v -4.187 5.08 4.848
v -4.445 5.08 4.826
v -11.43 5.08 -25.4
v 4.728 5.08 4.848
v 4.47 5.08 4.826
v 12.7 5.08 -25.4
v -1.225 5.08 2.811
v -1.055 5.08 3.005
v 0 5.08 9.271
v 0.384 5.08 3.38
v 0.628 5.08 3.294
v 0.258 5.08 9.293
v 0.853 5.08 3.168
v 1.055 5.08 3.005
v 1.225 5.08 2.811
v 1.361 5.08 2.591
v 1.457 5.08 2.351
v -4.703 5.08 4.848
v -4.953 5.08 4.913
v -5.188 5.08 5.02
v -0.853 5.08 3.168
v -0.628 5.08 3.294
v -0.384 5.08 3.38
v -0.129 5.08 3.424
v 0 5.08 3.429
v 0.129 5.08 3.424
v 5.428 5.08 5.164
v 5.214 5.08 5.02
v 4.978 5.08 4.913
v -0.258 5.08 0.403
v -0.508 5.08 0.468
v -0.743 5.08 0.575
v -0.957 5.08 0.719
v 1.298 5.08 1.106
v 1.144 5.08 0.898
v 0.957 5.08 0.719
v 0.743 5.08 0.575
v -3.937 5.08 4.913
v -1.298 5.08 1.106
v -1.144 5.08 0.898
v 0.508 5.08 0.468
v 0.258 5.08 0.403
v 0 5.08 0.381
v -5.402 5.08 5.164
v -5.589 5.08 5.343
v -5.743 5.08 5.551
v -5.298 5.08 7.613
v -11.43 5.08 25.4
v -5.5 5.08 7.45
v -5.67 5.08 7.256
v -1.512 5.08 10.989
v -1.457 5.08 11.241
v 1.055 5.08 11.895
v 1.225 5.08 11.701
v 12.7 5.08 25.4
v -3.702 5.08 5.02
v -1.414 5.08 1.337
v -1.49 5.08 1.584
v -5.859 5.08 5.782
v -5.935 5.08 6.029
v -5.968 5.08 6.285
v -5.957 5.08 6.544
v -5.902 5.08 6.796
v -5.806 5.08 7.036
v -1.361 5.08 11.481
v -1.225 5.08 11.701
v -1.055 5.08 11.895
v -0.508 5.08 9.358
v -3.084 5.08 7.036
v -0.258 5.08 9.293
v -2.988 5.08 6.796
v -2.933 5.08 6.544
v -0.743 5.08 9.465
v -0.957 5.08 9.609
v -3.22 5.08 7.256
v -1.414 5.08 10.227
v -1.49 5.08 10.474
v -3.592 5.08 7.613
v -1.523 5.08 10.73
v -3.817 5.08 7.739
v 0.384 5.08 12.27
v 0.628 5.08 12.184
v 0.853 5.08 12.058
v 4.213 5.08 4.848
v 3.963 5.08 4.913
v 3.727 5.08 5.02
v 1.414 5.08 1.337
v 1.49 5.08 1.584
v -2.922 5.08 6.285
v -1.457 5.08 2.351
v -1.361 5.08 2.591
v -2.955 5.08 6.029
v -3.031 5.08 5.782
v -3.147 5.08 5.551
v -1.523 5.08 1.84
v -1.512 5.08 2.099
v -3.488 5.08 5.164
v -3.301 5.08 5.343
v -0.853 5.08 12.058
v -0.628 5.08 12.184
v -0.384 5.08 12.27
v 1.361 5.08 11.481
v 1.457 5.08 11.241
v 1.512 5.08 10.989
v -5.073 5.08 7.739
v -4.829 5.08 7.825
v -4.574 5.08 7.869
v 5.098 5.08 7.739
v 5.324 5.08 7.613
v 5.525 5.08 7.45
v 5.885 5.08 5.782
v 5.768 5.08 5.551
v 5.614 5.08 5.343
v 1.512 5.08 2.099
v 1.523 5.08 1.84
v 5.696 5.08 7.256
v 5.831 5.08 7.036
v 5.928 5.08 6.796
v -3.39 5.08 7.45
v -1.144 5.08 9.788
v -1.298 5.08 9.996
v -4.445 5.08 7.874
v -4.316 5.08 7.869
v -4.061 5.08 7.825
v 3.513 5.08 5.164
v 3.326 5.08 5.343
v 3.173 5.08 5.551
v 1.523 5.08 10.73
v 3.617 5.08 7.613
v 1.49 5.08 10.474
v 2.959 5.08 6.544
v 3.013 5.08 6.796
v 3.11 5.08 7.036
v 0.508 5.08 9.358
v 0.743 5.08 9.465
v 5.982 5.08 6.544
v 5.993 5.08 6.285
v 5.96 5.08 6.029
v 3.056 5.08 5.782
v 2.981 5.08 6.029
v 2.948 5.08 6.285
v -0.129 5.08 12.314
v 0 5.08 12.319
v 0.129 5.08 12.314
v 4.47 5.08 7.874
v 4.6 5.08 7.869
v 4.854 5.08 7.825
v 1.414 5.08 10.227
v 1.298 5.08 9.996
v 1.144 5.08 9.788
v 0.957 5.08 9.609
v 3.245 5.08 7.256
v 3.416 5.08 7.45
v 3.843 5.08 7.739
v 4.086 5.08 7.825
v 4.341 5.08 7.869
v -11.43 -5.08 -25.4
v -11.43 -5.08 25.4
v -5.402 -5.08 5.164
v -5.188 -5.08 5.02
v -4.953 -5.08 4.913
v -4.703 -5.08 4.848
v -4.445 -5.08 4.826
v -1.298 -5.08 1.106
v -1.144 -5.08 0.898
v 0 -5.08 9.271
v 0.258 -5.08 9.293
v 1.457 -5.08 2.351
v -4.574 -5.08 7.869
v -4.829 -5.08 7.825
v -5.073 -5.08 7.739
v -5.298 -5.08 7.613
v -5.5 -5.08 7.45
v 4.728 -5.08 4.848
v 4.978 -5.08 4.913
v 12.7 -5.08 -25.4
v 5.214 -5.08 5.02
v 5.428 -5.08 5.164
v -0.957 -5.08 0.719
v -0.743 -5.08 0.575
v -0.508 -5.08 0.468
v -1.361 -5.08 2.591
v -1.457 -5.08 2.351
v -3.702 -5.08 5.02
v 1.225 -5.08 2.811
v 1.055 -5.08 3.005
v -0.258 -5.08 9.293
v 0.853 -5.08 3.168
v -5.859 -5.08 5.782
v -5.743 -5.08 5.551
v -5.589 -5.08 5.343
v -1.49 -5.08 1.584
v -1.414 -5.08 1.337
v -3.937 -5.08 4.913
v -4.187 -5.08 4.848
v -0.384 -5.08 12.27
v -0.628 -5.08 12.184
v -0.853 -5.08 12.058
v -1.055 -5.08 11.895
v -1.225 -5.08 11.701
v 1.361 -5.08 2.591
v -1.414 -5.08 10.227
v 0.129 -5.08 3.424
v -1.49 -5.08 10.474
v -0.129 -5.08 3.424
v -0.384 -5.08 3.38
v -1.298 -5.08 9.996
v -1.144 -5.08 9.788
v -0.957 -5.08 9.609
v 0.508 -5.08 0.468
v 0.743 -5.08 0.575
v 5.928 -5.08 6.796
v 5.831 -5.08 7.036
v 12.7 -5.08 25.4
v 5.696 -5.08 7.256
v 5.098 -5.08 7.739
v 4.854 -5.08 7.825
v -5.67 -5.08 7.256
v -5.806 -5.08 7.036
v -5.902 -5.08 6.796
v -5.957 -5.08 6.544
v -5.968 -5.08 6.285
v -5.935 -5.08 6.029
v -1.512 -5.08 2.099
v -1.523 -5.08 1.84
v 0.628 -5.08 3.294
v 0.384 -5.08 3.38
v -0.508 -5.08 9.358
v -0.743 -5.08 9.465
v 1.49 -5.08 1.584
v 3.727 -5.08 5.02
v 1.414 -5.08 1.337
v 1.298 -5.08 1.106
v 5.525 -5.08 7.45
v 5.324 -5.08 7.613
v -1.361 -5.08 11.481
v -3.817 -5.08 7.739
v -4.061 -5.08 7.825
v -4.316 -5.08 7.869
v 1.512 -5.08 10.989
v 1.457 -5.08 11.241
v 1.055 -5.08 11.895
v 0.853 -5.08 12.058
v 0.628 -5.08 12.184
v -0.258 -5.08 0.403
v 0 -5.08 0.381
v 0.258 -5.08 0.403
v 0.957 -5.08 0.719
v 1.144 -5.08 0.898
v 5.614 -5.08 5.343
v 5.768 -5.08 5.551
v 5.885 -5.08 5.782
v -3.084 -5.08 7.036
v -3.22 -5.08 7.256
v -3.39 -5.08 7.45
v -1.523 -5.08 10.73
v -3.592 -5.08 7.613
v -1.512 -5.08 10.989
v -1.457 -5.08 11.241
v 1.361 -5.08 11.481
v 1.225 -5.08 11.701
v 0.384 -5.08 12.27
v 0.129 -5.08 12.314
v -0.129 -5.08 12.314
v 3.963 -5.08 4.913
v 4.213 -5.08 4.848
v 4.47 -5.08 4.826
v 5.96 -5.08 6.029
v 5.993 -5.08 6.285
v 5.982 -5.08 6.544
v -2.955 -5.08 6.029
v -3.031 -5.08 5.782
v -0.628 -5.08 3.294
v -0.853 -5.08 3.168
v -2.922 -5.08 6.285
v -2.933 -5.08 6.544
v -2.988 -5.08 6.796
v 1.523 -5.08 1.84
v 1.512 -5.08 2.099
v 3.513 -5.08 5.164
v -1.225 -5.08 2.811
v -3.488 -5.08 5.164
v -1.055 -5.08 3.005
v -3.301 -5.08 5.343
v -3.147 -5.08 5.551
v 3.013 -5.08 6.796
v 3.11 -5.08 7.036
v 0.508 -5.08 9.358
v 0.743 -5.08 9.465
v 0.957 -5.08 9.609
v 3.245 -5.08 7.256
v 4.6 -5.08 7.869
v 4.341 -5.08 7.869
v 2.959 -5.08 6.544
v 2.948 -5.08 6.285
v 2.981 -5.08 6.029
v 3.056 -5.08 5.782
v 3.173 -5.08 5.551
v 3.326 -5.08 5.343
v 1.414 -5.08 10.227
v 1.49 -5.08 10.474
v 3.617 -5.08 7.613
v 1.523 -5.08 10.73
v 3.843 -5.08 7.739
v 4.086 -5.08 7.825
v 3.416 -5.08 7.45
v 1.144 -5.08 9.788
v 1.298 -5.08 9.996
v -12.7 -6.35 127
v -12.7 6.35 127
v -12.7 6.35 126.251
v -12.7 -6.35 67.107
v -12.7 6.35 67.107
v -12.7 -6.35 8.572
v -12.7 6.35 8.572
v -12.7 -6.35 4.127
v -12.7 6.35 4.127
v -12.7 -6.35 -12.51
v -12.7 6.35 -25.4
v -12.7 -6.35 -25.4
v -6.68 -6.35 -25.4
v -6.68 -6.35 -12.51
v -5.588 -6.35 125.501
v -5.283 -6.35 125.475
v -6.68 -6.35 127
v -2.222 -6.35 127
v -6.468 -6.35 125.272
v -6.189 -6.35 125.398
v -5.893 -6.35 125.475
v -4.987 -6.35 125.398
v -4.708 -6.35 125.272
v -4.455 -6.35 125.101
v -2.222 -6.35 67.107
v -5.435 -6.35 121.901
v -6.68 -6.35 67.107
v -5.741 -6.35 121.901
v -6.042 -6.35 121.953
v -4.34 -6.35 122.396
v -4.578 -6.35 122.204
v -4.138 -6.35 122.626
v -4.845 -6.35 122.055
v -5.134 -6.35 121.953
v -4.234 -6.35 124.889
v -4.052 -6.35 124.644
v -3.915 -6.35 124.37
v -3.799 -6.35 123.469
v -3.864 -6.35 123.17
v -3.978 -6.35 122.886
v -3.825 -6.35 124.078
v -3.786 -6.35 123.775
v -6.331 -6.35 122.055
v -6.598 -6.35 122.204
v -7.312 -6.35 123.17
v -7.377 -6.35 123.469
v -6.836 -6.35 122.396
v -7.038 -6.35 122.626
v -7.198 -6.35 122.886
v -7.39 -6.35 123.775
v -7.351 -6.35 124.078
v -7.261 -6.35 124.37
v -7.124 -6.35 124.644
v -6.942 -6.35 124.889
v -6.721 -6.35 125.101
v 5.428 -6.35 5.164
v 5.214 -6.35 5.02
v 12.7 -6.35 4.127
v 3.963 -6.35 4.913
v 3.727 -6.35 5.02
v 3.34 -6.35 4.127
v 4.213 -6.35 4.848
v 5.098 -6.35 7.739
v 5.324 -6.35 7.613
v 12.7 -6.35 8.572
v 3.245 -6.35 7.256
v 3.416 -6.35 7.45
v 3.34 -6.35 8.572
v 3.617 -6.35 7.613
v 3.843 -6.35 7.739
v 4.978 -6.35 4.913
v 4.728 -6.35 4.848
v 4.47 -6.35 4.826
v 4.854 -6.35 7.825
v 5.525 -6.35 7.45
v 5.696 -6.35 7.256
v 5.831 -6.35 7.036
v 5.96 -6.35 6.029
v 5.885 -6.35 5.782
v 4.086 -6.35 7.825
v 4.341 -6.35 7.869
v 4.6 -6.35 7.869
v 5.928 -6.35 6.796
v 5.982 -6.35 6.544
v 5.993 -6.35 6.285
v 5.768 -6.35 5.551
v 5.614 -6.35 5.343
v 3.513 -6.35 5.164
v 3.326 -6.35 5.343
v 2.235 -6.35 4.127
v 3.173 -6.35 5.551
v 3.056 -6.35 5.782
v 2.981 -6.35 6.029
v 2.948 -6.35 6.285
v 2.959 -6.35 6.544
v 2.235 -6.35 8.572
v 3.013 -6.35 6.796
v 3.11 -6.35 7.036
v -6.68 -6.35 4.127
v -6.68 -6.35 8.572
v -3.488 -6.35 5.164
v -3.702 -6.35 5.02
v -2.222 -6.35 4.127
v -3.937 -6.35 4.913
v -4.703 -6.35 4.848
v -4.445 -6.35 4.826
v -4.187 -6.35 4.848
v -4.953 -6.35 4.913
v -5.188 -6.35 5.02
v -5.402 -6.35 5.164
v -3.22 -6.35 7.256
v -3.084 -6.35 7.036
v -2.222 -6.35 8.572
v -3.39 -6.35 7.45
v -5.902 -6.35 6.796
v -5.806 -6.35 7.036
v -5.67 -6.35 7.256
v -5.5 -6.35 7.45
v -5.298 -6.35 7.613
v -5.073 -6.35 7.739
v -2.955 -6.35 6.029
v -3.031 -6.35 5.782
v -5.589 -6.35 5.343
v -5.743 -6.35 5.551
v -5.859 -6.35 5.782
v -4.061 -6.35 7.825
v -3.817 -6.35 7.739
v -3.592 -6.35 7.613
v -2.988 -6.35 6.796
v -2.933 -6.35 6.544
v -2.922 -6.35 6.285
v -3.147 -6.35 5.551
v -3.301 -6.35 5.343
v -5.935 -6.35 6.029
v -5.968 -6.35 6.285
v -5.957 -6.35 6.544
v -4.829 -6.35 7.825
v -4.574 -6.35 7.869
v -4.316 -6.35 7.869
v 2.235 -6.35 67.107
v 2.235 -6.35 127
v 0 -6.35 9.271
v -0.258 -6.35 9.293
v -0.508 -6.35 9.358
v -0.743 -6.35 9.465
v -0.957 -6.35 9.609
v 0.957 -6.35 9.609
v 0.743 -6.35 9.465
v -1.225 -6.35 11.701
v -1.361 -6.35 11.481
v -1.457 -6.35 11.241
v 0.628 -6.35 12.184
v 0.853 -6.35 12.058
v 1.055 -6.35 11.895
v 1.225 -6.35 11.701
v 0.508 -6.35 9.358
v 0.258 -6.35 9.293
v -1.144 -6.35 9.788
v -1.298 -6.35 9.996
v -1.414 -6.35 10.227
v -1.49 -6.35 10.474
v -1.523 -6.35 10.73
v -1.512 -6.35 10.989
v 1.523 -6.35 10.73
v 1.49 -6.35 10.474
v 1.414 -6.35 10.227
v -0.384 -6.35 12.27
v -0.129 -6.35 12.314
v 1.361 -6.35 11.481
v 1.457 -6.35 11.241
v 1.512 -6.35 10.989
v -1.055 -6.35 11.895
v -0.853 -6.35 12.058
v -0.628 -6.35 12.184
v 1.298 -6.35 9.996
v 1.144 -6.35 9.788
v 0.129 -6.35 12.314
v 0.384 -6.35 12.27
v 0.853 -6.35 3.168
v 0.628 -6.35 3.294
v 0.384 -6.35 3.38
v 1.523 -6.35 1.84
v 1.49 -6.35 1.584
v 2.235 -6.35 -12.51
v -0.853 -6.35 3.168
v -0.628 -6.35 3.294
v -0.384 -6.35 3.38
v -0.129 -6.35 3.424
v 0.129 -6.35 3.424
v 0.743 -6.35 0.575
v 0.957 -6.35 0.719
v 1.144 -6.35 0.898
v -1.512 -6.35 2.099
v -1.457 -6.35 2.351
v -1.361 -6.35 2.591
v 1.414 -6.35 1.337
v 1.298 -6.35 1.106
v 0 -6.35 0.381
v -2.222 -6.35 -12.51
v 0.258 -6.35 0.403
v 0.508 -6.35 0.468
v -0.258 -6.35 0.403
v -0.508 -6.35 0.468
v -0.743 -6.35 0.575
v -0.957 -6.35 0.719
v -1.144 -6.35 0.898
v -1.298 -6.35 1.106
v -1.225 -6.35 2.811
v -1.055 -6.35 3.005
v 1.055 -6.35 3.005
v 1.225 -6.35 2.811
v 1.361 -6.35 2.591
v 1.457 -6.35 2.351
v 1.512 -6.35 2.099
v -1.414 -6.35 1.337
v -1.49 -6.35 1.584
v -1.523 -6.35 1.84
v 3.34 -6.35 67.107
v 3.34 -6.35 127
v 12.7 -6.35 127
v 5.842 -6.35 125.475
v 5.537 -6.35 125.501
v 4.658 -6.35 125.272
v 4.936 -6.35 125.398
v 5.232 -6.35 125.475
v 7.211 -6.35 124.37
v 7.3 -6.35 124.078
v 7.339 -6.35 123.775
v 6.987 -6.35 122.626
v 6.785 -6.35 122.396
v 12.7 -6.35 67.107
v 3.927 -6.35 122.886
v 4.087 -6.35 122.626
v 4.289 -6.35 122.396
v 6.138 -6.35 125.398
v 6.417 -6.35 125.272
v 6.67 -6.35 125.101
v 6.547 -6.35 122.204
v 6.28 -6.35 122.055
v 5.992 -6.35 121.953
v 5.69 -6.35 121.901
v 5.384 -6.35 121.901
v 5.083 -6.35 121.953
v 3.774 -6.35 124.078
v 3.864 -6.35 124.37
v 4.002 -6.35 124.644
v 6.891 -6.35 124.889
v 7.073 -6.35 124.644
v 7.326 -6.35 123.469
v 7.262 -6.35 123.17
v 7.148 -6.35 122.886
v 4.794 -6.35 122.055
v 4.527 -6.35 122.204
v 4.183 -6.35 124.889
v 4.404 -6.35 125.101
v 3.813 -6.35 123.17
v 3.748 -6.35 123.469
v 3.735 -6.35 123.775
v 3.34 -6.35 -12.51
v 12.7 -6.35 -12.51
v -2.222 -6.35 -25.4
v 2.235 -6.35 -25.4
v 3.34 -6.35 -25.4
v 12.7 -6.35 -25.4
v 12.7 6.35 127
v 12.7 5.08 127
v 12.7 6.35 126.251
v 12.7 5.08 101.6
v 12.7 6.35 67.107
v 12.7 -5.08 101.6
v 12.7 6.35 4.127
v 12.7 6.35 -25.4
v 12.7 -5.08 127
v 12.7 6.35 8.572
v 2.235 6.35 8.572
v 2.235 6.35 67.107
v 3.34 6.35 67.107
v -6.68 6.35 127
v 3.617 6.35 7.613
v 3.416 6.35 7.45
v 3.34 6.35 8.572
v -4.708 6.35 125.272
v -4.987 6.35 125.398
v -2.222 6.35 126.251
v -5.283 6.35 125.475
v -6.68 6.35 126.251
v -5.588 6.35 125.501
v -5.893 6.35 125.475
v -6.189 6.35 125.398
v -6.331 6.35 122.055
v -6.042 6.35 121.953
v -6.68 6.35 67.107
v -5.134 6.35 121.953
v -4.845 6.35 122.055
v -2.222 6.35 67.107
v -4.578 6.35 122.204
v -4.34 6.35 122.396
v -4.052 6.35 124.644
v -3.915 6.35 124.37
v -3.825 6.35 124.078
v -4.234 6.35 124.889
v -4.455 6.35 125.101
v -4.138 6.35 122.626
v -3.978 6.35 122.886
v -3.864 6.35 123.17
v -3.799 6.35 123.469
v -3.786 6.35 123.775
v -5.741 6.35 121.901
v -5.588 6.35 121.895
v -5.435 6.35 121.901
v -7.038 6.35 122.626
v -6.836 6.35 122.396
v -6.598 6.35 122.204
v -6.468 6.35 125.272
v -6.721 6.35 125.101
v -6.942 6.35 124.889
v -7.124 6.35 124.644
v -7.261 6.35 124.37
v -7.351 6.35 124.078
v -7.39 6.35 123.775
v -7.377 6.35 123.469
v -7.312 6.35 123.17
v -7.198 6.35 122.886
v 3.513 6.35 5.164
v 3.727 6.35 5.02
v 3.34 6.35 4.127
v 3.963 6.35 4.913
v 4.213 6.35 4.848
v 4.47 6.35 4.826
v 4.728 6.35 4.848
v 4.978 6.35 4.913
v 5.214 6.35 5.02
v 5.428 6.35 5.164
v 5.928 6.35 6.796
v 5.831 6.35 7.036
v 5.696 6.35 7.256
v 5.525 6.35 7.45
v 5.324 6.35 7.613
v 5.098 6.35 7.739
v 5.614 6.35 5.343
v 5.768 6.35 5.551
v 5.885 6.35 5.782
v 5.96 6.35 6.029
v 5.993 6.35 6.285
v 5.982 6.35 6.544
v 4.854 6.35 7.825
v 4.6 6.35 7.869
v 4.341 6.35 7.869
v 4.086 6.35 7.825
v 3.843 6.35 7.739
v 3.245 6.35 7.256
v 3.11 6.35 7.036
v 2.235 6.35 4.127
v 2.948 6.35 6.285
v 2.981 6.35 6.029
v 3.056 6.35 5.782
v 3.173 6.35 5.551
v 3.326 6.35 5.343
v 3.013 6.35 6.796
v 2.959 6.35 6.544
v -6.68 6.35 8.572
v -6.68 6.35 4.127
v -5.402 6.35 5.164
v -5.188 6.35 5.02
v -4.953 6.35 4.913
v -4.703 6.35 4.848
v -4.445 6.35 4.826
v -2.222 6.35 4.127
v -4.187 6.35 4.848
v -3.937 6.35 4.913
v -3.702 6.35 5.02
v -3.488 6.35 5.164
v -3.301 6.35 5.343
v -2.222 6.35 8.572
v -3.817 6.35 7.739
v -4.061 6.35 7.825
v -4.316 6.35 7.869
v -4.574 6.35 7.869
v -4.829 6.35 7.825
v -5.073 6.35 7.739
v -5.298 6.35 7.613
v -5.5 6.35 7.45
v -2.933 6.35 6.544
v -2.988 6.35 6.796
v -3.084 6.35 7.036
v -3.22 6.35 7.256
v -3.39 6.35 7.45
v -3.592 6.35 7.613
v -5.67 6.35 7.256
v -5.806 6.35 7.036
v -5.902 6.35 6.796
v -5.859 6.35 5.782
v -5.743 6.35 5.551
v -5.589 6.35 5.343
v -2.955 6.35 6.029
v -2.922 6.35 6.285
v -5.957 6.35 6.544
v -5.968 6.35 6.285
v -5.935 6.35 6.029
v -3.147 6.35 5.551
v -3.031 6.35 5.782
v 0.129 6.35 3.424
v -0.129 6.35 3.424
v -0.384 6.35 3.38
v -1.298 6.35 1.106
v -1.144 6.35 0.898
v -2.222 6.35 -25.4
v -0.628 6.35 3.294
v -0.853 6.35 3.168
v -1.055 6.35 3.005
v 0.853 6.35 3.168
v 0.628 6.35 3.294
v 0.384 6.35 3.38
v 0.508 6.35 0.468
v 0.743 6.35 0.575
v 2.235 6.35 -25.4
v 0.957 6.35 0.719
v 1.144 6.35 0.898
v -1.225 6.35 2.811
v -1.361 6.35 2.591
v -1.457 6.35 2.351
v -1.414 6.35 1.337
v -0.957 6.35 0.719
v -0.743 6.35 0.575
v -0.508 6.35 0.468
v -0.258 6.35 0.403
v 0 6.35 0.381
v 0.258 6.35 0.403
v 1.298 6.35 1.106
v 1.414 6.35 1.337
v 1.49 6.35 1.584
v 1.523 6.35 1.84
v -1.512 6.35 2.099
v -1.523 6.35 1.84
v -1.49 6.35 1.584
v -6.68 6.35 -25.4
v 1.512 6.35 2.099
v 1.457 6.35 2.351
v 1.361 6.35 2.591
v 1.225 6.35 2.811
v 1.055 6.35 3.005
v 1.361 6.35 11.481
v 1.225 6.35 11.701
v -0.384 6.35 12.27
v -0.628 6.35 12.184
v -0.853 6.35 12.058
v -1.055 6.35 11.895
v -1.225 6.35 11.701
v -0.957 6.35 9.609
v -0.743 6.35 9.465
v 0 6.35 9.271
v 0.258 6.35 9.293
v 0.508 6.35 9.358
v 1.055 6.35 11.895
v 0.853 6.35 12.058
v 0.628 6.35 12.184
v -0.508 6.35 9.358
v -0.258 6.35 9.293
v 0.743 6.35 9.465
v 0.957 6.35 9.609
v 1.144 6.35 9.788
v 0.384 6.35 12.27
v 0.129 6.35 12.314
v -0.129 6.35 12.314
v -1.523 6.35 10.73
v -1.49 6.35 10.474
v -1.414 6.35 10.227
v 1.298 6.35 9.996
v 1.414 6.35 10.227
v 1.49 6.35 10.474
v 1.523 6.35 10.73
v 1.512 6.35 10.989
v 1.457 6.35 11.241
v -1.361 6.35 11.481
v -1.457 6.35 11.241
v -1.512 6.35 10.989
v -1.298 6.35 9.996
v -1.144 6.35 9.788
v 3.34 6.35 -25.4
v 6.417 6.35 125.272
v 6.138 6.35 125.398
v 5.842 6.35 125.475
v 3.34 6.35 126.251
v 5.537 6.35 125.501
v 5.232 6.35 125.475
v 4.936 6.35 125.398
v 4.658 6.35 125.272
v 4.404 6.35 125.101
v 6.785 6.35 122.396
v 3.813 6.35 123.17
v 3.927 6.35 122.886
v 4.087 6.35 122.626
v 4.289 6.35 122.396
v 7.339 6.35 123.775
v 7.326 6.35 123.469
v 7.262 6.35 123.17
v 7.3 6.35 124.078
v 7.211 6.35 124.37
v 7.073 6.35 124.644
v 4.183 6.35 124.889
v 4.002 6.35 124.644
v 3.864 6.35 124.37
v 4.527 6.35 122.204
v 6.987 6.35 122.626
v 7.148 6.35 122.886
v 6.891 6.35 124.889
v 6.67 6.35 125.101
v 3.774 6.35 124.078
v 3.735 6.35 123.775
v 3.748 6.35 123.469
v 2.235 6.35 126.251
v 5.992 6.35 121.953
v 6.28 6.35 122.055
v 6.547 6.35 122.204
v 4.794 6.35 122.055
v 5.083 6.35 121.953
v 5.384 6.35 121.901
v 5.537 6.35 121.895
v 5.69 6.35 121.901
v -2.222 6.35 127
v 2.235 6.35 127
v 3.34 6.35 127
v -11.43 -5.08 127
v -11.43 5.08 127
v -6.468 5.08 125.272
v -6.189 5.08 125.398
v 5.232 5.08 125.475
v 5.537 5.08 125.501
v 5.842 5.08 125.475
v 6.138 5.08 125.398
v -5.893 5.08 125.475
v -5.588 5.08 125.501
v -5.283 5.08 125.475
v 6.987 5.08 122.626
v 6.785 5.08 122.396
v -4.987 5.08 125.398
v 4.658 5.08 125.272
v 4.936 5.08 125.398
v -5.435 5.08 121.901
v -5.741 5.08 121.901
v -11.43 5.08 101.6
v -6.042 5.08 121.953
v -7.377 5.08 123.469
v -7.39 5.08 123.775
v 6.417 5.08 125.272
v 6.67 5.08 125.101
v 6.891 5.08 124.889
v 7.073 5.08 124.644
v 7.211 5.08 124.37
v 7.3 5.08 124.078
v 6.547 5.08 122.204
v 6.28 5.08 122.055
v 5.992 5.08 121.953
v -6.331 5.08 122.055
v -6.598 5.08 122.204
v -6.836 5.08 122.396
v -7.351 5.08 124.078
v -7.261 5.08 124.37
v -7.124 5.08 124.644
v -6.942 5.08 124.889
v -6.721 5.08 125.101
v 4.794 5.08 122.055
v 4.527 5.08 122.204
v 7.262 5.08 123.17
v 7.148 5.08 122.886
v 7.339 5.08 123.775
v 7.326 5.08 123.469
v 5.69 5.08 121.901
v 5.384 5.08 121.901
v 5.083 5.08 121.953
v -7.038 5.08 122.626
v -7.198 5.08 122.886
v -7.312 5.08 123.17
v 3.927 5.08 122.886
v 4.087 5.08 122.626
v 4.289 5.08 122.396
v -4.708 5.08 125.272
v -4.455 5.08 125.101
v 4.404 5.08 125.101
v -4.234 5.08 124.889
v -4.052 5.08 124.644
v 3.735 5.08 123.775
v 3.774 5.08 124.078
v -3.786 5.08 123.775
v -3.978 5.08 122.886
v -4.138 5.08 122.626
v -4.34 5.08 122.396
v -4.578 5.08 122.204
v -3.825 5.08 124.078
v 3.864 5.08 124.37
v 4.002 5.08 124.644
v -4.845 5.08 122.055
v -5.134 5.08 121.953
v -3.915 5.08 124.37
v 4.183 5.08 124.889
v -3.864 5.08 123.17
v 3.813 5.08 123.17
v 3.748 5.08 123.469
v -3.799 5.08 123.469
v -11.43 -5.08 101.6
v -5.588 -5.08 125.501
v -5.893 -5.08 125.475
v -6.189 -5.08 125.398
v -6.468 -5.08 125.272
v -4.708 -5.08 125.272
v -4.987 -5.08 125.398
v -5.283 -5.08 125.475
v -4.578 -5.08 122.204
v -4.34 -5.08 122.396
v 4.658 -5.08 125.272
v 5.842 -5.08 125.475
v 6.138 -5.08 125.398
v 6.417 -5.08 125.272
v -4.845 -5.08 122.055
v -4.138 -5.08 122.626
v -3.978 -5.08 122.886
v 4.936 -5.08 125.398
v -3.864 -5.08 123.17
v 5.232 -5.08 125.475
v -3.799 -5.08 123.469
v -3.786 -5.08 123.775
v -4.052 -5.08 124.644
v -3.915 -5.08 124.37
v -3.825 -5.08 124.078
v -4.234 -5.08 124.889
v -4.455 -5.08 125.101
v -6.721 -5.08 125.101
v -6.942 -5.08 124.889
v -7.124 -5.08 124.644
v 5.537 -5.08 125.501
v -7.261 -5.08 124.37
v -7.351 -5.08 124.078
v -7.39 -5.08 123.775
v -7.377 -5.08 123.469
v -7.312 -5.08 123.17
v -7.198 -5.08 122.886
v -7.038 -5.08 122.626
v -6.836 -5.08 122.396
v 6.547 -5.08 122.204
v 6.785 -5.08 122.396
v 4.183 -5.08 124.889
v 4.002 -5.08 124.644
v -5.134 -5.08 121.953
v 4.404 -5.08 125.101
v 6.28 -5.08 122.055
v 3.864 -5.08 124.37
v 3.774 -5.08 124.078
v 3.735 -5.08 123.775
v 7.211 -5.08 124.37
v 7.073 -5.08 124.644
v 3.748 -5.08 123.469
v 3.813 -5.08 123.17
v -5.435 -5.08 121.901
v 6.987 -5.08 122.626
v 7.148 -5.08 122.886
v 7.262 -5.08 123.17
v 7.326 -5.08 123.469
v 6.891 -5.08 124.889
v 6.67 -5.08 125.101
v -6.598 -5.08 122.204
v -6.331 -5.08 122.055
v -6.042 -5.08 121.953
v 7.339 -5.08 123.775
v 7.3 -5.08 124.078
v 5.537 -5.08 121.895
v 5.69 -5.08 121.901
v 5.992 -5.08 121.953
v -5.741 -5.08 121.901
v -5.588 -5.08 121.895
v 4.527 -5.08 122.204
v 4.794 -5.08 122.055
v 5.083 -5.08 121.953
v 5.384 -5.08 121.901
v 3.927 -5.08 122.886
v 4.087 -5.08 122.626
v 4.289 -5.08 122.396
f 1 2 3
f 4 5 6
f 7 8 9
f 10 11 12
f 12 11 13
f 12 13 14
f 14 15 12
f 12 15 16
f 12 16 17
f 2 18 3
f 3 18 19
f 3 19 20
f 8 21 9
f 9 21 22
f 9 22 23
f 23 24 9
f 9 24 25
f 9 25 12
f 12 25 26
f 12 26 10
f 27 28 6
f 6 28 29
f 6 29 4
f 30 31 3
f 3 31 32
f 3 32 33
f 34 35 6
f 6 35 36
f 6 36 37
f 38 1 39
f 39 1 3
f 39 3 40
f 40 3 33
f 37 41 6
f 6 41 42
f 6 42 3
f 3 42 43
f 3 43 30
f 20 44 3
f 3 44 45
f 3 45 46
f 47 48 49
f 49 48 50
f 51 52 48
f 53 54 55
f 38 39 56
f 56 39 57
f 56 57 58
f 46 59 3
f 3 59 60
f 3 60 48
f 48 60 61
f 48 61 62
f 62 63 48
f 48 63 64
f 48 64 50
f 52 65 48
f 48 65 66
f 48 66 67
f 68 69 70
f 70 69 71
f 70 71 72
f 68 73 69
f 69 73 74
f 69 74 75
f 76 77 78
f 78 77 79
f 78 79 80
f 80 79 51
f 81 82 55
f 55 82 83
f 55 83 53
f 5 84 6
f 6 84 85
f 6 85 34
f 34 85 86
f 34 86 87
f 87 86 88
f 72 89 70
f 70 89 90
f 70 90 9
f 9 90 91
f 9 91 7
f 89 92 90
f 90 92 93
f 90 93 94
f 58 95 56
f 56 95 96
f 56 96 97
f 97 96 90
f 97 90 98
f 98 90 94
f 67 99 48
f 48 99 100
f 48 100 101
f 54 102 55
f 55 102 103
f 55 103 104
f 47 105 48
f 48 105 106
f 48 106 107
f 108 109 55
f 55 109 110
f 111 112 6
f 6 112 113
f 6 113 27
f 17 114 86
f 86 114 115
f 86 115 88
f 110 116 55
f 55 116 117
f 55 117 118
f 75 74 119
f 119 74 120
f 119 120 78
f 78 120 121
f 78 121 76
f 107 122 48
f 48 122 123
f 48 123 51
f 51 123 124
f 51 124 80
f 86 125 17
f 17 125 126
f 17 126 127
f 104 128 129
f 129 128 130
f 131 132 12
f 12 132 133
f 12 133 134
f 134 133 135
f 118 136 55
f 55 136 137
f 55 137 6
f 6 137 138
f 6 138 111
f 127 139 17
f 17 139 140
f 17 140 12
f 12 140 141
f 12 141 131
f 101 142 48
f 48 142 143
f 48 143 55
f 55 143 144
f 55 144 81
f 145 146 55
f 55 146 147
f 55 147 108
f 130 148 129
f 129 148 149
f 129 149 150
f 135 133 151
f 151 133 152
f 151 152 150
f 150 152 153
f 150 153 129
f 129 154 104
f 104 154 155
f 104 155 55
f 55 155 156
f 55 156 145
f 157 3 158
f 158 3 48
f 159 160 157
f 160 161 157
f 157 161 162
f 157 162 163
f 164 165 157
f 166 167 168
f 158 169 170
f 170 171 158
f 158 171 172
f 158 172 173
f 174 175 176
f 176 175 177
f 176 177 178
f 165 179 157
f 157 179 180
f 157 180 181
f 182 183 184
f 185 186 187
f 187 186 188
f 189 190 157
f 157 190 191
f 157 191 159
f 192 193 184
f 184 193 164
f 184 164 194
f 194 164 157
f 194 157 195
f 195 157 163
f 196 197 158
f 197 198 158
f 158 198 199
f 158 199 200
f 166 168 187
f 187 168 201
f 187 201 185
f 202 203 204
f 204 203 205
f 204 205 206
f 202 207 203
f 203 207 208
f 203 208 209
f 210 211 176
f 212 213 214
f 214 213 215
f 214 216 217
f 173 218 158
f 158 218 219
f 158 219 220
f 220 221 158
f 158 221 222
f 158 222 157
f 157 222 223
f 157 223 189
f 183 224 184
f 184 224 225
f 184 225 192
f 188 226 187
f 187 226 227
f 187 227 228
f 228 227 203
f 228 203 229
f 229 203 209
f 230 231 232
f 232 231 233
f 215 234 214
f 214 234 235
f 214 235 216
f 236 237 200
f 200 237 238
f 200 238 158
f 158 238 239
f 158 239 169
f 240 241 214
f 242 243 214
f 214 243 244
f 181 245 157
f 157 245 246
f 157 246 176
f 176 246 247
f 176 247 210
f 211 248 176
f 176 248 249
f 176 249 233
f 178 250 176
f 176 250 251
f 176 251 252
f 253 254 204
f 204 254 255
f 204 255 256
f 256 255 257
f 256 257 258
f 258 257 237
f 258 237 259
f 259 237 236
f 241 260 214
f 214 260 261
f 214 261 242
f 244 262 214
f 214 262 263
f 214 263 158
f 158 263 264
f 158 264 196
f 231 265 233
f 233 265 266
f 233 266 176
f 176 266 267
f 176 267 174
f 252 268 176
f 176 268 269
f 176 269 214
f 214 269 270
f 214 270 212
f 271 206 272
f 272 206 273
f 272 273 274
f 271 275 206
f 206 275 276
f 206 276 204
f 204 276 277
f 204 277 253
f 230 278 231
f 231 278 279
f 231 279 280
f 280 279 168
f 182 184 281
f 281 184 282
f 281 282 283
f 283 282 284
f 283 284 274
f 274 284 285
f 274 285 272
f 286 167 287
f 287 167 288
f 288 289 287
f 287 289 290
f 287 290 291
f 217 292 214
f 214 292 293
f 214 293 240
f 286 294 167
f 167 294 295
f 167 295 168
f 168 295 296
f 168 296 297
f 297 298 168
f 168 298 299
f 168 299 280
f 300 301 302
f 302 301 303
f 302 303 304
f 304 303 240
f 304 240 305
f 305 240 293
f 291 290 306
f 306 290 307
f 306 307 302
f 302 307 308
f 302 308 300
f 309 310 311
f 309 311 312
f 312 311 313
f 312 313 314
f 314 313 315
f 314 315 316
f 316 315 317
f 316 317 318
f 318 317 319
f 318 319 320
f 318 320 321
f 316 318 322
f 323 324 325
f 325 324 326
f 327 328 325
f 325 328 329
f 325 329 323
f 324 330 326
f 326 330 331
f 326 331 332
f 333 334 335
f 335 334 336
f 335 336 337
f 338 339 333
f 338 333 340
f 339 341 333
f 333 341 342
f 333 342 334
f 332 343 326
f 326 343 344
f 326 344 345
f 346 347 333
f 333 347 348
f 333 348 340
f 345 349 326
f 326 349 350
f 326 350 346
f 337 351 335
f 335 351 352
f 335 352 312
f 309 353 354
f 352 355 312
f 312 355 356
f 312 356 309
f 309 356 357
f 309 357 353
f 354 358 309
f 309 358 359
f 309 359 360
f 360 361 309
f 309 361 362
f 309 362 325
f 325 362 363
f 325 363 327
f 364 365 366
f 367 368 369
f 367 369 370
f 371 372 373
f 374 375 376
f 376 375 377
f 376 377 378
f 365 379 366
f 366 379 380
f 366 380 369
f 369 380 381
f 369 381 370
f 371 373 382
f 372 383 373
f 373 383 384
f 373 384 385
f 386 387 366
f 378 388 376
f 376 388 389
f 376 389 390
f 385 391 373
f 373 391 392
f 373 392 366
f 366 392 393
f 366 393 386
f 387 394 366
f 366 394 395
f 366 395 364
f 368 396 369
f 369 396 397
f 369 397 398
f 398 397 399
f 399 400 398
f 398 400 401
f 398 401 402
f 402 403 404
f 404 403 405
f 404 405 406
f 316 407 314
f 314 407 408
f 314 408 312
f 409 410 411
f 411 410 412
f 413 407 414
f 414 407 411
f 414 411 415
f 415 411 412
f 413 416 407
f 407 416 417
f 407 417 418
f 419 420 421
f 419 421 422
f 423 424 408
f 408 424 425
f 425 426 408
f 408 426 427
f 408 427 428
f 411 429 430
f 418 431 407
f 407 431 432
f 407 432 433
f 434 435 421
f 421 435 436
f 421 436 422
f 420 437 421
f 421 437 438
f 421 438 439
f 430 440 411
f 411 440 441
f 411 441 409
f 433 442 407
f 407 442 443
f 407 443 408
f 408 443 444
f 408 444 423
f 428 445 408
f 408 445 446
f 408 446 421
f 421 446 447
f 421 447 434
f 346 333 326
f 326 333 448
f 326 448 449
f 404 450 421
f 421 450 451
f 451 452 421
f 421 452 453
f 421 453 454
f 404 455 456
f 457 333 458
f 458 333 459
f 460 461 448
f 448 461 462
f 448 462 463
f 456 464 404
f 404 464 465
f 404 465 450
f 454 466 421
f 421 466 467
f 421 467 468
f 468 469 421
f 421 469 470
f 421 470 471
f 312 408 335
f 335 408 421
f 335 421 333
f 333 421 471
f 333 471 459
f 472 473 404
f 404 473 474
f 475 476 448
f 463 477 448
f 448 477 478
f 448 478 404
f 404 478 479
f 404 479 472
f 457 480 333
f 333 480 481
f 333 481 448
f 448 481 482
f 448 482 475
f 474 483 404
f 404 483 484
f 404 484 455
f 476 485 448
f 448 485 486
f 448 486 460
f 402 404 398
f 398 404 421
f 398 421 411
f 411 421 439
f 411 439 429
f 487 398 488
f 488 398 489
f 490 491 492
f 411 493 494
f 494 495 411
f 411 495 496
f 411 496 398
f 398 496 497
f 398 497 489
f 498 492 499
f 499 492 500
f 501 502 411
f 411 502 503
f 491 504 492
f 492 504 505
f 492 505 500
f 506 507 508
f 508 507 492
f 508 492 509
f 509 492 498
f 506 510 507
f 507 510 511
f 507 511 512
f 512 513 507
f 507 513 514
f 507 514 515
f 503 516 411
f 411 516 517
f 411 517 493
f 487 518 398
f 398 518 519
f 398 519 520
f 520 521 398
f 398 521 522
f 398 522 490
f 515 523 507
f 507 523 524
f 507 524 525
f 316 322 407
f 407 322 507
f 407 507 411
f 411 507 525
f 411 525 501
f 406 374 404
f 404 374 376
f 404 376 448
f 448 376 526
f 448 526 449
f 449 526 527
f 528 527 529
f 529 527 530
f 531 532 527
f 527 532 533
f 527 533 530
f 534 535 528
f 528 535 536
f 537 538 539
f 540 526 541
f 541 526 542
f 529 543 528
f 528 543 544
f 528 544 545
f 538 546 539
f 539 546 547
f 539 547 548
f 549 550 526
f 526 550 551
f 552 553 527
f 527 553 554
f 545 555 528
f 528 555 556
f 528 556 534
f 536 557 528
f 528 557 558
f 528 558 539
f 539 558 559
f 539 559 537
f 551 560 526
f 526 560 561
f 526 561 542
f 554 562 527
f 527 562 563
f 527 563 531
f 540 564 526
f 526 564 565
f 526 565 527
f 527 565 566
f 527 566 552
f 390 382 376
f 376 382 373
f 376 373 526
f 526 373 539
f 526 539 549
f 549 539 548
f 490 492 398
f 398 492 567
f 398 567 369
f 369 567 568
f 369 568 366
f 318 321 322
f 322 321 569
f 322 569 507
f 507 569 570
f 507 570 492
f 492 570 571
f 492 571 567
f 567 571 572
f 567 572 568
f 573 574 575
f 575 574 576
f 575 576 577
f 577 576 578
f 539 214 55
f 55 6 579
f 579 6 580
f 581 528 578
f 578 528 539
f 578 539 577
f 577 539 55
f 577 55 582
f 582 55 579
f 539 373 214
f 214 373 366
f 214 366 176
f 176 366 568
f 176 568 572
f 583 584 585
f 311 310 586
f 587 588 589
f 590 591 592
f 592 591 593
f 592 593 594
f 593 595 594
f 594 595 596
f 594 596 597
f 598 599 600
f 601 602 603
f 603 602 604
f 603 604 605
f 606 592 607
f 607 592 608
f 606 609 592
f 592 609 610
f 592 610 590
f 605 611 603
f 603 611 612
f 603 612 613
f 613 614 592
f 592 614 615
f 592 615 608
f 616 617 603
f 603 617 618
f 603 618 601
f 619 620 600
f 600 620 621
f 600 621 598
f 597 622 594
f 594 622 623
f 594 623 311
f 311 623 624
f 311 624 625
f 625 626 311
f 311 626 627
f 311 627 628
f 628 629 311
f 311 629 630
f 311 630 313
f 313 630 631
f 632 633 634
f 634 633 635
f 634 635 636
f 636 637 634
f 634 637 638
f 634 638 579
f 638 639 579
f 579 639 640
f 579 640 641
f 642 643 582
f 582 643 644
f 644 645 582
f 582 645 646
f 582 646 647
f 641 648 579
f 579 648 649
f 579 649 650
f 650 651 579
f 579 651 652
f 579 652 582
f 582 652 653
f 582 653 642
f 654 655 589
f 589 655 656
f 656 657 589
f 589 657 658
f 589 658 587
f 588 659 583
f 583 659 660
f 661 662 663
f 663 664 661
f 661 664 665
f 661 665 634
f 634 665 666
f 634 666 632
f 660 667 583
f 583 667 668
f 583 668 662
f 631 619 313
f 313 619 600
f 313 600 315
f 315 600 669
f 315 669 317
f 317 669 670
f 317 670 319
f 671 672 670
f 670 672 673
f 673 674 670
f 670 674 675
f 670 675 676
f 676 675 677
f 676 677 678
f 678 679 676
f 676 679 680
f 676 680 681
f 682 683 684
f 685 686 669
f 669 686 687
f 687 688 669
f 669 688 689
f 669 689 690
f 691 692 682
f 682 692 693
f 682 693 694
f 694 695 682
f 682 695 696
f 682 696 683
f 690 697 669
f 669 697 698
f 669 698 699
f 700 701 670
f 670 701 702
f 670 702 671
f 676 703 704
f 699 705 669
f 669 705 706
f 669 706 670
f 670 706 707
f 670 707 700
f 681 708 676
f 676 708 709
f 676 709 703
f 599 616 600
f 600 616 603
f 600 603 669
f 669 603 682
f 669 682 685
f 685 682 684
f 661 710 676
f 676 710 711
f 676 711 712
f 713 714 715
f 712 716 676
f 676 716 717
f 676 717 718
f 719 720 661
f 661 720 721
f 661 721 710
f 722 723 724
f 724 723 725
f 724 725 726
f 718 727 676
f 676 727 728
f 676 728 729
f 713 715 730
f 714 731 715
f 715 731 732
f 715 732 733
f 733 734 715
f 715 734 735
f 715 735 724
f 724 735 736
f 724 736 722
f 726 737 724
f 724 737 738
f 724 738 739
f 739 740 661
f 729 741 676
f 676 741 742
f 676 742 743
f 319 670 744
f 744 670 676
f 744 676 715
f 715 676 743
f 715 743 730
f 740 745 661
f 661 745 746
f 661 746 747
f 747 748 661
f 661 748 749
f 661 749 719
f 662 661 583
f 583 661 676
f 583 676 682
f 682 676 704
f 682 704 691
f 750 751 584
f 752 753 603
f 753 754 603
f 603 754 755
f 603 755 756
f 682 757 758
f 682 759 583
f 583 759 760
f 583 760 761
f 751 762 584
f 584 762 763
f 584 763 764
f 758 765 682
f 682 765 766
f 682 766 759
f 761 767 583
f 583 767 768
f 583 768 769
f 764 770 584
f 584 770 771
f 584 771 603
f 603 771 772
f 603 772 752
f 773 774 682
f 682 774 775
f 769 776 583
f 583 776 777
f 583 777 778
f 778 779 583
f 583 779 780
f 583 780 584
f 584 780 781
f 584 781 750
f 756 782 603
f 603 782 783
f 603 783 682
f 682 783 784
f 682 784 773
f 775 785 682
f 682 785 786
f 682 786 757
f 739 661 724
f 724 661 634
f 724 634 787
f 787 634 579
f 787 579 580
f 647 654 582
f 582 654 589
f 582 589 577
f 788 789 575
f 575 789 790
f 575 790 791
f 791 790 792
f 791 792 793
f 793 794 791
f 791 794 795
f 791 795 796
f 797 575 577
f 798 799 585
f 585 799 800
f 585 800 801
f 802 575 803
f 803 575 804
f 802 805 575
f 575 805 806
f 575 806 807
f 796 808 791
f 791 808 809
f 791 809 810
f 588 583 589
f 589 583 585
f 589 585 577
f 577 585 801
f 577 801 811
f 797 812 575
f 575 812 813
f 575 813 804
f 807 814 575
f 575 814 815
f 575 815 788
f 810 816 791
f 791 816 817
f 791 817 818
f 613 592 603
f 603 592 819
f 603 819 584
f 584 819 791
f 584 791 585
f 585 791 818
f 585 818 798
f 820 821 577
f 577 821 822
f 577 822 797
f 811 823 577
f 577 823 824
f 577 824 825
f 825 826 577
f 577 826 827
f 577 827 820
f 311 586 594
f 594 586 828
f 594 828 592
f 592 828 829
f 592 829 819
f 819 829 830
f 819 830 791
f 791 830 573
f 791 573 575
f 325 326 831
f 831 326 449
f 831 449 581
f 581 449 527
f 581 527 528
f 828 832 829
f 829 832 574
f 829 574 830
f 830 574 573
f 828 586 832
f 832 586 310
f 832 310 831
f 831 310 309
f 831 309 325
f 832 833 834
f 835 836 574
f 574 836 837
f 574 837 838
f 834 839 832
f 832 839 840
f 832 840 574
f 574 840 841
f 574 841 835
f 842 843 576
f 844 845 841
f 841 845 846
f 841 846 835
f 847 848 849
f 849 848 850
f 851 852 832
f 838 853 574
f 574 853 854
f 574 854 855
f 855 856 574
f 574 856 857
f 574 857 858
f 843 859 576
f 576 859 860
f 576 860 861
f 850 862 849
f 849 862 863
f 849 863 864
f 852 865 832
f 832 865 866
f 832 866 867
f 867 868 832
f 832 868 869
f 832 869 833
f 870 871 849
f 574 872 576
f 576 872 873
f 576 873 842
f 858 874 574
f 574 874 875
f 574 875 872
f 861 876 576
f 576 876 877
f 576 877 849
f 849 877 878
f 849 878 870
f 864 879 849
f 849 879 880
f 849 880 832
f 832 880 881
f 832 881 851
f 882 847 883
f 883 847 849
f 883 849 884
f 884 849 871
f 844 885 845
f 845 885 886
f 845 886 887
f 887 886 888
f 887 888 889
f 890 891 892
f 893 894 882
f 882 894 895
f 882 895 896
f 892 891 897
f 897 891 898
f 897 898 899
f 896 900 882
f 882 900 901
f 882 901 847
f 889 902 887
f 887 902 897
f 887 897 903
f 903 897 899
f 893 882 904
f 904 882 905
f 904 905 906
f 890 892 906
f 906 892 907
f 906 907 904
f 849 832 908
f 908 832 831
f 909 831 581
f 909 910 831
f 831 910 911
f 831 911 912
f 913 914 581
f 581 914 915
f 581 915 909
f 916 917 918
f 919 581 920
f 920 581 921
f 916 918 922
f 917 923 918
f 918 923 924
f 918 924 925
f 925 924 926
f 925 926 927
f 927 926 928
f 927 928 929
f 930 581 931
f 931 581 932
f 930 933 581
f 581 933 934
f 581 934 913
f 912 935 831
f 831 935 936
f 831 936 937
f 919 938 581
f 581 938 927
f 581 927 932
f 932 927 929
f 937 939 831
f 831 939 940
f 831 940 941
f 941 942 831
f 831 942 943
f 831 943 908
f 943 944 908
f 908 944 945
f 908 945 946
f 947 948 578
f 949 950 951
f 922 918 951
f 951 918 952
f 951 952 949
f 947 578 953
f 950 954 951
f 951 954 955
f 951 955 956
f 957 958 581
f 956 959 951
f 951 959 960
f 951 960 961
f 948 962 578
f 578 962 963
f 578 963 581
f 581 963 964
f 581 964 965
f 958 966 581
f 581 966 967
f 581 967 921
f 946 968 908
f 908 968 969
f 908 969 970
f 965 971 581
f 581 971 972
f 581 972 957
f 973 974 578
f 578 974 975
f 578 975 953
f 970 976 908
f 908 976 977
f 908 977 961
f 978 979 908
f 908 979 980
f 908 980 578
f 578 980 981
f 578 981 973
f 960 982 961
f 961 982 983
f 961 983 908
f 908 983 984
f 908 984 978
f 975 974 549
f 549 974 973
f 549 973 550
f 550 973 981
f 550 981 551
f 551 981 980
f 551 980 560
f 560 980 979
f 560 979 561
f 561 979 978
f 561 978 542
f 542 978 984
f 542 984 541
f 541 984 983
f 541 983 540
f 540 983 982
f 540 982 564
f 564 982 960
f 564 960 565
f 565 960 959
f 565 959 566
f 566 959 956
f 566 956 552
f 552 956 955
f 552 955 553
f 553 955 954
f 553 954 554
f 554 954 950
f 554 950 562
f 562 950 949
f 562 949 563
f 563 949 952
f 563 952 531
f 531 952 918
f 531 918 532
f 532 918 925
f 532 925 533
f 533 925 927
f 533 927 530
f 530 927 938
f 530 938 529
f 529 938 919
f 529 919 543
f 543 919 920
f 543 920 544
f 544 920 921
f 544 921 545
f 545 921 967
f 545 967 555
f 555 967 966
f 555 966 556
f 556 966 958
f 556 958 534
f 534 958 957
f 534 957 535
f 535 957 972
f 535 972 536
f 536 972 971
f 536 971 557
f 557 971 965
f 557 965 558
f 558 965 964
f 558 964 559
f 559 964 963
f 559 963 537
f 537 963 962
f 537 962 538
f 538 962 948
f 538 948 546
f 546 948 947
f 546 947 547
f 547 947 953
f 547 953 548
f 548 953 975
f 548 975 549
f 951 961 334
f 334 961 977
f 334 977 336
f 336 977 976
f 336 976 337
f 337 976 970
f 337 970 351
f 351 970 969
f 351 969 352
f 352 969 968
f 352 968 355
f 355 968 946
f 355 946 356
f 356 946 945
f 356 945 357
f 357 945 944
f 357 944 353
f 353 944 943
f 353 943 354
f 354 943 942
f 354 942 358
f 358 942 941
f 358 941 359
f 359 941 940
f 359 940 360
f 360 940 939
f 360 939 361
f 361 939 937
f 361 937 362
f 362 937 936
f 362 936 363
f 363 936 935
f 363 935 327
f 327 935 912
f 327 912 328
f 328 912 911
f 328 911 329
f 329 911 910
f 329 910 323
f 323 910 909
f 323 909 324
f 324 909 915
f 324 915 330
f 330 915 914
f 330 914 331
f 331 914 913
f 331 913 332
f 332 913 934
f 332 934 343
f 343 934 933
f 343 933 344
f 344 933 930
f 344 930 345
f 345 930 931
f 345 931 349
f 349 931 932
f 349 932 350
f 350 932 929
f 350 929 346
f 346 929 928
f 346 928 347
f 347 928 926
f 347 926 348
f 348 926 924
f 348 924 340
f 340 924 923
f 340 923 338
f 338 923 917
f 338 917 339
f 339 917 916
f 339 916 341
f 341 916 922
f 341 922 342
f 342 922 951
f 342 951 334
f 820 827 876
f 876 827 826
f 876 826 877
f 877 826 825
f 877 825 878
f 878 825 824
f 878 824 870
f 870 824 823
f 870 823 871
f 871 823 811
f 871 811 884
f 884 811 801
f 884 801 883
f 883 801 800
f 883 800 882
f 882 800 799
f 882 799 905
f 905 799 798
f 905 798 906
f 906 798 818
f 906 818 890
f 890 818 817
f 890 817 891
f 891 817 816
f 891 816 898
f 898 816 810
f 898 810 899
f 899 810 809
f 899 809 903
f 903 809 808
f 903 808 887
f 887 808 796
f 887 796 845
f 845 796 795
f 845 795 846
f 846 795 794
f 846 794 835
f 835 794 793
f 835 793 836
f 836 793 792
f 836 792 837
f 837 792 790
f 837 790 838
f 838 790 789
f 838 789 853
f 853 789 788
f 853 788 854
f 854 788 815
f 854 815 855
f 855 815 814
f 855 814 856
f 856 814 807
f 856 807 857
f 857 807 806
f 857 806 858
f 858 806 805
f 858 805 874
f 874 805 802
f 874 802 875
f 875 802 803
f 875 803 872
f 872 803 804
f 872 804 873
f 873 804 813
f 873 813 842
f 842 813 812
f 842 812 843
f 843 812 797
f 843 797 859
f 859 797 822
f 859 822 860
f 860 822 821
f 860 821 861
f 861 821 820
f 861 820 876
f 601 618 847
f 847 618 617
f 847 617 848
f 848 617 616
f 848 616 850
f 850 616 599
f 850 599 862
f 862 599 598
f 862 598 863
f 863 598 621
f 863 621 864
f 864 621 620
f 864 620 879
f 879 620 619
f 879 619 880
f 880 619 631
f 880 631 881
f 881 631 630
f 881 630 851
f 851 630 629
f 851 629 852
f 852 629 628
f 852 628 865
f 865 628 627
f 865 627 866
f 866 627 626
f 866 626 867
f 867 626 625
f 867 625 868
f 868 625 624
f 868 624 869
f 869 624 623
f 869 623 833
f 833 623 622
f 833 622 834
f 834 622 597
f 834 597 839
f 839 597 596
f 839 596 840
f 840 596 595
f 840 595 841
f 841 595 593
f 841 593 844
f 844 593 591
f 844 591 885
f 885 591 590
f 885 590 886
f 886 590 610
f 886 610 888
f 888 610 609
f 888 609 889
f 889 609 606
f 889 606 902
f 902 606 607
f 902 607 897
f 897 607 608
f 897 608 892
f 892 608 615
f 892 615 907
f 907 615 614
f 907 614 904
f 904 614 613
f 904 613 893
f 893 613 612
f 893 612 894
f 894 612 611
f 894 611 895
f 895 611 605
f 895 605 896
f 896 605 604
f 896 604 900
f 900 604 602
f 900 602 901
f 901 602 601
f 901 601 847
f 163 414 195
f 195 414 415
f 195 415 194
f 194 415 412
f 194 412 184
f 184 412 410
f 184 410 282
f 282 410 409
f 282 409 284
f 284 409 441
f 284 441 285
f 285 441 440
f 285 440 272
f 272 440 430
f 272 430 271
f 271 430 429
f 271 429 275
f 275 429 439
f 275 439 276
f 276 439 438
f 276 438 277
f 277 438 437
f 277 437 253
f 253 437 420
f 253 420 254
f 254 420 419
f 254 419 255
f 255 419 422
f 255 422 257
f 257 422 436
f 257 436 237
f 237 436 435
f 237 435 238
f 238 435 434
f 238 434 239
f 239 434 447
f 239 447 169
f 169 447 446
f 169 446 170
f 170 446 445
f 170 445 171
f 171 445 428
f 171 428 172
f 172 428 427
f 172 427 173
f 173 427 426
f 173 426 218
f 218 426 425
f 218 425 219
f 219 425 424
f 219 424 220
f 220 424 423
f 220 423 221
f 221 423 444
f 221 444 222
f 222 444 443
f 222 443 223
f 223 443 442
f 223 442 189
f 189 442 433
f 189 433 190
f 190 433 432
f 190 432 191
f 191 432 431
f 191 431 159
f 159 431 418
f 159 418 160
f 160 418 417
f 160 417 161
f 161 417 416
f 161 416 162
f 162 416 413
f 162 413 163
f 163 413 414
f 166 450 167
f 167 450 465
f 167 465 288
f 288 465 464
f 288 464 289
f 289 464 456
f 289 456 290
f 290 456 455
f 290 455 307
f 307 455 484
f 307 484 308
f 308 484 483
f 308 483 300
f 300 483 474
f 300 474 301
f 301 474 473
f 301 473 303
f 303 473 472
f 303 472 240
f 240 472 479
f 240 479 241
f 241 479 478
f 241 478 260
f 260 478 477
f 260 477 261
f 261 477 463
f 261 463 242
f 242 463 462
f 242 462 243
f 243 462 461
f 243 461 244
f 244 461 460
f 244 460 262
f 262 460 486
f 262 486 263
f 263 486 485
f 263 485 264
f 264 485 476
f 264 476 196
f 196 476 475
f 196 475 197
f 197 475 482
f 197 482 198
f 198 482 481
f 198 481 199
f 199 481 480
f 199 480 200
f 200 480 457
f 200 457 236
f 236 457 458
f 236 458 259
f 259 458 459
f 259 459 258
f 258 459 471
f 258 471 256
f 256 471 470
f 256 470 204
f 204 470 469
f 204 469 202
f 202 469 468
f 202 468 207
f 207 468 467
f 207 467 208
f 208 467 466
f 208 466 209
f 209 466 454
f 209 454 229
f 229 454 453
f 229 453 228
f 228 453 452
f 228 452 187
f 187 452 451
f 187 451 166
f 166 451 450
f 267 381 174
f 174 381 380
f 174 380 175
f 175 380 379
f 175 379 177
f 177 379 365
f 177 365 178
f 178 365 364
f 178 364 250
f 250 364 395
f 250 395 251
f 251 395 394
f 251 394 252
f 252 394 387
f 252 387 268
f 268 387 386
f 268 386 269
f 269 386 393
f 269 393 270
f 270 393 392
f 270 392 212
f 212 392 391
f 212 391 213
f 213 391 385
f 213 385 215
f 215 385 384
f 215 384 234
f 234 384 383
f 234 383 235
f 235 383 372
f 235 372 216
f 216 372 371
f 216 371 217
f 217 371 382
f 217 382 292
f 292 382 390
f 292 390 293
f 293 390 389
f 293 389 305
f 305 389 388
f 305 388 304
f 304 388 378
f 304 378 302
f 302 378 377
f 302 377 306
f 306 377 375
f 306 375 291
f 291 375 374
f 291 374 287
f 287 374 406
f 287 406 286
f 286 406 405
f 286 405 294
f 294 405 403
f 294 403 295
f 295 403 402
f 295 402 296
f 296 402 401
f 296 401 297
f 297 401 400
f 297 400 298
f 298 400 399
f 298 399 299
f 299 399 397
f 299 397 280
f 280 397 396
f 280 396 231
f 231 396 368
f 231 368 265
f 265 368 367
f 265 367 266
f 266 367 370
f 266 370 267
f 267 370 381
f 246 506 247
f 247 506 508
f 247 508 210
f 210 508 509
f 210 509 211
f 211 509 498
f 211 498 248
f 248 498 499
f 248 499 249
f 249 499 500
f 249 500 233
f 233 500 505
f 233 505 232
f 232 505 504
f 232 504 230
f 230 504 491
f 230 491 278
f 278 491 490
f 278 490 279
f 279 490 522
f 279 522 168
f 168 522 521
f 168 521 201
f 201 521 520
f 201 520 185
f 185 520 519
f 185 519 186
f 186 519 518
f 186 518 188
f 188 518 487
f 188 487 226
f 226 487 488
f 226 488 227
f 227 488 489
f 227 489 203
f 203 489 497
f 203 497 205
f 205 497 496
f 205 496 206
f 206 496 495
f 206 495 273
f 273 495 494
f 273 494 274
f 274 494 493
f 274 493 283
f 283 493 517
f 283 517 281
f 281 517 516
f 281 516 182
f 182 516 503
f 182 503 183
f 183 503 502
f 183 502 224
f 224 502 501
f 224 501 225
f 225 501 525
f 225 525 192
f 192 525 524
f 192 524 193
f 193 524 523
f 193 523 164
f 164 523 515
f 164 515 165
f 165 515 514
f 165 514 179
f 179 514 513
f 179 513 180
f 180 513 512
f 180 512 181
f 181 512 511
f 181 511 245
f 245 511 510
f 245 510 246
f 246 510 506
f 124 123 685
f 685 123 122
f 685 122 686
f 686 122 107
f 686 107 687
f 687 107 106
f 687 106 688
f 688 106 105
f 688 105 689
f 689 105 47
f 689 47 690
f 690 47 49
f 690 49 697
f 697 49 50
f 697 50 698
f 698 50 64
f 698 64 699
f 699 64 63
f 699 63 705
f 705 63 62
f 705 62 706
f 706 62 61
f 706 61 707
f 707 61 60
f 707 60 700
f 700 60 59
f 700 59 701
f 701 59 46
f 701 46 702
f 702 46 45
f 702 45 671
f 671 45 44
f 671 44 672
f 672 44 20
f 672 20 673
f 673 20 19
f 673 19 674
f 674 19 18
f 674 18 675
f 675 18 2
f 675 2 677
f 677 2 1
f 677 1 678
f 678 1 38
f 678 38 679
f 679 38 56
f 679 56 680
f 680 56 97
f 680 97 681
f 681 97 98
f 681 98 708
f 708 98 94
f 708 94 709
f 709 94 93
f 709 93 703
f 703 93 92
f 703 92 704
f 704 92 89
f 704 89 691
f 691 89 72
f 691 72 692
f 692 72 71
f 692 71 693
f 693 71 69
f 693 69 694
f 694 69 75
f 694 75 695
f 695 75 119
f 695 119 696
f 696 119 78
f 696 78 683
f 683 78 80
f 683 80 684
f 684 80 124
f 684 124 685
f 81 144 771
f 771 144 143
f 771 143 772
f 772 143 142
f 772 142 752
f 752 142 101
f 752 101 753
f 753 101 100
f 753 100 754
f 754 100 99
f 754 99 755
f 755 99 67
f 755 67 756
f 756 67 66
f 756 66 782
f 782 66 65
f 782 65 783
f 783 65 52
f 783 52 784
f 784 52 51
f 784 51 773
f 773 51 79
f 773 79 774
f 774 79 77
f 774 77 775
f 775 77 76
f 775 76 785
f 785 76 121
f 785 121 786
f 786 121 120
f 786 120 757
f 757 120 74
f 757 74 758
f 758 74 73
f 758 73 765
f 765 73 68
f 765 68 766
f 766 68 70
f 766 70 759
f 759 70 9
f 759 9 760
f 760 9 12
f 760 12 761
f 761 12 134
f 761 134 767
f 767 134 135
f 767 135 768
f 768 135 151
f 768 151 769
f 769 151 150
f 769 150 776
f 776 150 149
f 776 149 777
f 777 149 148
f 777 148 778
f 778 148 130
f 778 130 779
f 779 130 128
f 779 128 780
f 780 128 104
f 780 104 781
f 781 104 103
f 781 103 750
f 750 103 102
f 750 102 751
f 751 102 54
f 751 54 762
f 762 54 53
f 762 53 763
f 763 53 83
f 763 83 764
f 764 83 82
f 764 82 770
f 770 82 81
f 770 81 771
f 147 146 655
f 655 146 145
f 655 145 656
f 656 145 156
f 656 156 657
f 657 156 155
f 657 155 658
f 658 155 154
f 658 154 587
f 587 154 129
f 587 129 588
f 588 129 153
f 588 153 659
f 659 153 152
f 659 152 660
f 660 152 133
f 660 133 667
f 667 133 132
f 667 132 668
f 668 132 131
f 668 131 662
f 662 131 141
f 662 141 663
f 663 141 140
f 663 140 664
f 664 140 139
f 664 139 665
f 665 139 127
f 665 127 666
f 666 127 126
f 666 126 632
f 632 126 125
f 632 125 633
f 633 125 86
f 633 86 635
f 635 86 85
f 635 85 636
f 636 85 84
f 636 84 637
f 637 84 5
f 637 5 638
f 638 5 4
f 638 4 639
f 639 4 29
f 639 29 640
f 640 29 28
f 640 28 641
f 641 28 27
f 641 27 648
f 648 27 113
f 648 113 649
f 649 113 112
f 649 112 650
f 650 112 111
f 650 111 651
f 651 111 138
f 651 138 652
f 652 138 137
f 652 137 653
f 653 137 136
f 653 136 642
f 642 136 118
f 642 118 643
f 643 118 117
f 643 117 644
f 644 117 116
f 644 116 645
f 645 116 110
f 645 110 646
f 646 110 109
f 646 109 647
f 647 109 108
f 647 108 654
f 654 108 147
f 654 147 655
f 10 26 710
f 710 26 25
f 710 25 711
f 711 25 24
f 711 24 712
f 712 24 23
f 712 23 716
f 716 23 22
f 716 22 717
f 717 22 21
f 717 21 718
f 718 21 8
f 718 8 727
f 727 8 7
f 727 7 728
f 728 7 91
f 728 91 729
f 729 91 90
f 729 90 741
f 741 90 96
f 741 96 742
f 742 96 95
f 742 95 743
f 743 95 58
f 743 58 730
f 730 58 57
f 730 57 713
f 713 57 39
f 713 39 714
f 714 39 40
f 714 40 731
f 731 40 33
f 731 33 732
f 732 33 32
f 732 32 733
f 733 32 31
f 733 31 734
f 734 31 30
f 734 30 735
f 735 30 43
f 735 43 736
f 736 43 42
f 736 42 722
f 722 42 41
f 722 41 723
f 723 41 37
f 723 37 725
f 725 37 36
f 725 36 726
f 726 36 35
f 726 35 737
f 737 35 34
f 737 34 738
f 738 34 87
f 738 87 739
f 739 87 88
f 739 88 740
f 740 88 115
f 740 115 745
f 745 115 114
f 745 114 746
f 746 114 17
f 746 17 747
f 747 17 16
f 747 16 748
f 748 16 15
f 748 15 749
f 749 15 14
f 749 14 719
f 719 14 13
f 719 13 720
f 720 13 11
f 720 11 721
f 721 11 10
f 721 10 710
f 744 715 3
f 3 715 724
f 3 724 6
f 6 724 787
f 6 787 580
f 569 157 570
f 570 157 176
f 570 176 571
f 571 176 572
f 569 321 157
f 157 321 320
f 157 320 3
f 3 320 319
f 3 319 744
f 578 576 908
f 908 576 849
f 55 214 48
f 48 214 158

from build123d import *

# Parameters (mm, degrees)
SKETCH1_W               = 25.4
SKETCH1_H               = 12.7
BOSS_EXTRUDE1_DEPTH     = 127
SKETCH4_W               = 22.86
SKETCH4_H               = 10.16
CUT_EXTRUDE1_DEPTH      = 128
SKETCH5_R               = 1.8034
CUT_EXTRUDE2_DEPTH      = 1
CUT_EXTRUDE2_DEPTH_BACK = 13.7
SKETCH6_R               = 1.524
CUT_EXTRUDE3_DEPTH      = 1
CUT_EXTRUDE3_DEPTH_BACK = 13.7
SKETCH7_W               = 25.4
SKETCH7_H               = 12.7
SKETCH7_W_2             = 22.86
SKETCH7_H_2             = 10.16
BOSS_EXTRUDE2_DEPTH     = 25.4
CUT_EXTRUDE4_REACH      = 154.4
SKETCH8_W               = 1.27
SKETCH8_H               = 10.16
BOSS_EXTRUDE3_START     = -50.8
SKETCH9_W               = 24.13
SKETCH9_H               = 10.16
BOSS_EXTRUDE3_DEPTH     = 76.2


with BuildPart() as part:
    # Sketch1 → Boss-Extrude1 (new body)
    with BuildSketch(Plane.XY):
        Rectangle(SKETCH1_W, SKETCH1_H)
    extrude(amount=BOSS_EXTRUDE1_DEPTH)

    # Sketch4 → Cut-Extrude1 (cut, through all)
    with BuildSketch(Plane(origin=(0, 0, 0), x_dir=(-1, 0, 0), z_dir=(0, 0, -1))):
        Rectangle(SKETCH4_W, SKETCH4_H)
    extrude(amount=-CUT_EXTRUDE1_DEPTH, mode=Mode.SUBTRACT)

    # Sketch5 → Cut-Extrude2 (cut, two sides)
    with BuildSketch(Plane(origin=(0, 6.35, 0), x_dir=(1, 0, 0), z_dir=(0, 1, 0))) as cut_extrude2_sk:
        with Locations((-5.588, -123.698)):
            Circle(SKETCH5_R)
        with Locations((5.5372, -123.698)):
            Circle(SKETCH5_R)
    extrude(amount=CUT_EXTRUDE2_DEPTH, mode=Mode.SUBTRACT)
    extrude(cut_extrude2_sk.sketch, amount=-CUT_EXTRUDE2_DEPTH_BACK, mode=Mode.SUBTRACT)

    # Sketch6 → Cut-Extrude3 (cut, two sides)
    with BuildSketch(Plane(origin=(0, -6.35, 0), x_dir=(-1, 0, 0), z_dir=(0, -1, 0))) as cut_extrude3_sk:
        with Locations((4.445, -6.35)):
            Circle(SKETCH6_R)
        with Locations((-4.4704, -6.35)):
            Circle(SKETCH6_R)
        with Locations((0, -1.905)):
            Circle(SKETCH6_R)
        with Locations((0, -10.795)):
            Circle(SKETCH6_R)
    extrude(amount=CUT_EXTRUDE3_DEPTH, mode=Mode.SUBTRACT)
    extrude(cut_extrude3_sk.sketch, amount=-CUT_EXTRUDE3_DEPTH_BACK, mode=Mode.SUBTRACT)

    # Sketch7 → Boss-Extrude2 (add)
    with BuildSketch(Plane(origin=(0, 0, 0), x_dir=(-1, 0, 0), z_dir=(0, 0, -1))):
        Rectangle(SKETCH7_W, SKETCH7_H)
        Rectangle(SKETCH7_W_2, SKETCH7_H_2, mode=Mode.SUBTRACT)
    extrude(amount=BOSS_EXTRUDE2_DEPTH)

    # Sketch8 → Cut-Extrude4 (cut, up to next)
    with BuildSketch(Plane(origin=(0, 0, -25.4), x_dir=(-1, 0, 0), z_dir=(0, 0, -1)), mode=Mode.PRIVATE) as cut_extrude4_sk1:
        with Locations((-12.065, 0)):
            Rectangle(SKETCH8_W, SKETCH8_H)
    cut_extrude4_tool1 = extrude(cut_extrude4_sk1.sketch, amount=-CUT_EXTRUDE4_REACH, mode=Mode.PRIVATE) & part.part
    add(cut_extrude4_tool1.solids().sort_by_distance((12.065, 0, -25.4))[0], mode=Mode.SUBTRACT)

    # Sketch9 → Boss-Extrude3 (add)
    with BuildSketch(Plane(origin=(0, 0, -25.4), x_dir=(-1, 0, 0), z_dir=(0, 0, -1)).offset(BOSS_EXTRUDE3_START)):
        with Locations((-0.635, 0)):
            Rectangle(SKETCH9_W, SKETCH9_H)
    extrude(amount=-BOSS_EXTRUDE3_DEPTH)


solid = part.part
